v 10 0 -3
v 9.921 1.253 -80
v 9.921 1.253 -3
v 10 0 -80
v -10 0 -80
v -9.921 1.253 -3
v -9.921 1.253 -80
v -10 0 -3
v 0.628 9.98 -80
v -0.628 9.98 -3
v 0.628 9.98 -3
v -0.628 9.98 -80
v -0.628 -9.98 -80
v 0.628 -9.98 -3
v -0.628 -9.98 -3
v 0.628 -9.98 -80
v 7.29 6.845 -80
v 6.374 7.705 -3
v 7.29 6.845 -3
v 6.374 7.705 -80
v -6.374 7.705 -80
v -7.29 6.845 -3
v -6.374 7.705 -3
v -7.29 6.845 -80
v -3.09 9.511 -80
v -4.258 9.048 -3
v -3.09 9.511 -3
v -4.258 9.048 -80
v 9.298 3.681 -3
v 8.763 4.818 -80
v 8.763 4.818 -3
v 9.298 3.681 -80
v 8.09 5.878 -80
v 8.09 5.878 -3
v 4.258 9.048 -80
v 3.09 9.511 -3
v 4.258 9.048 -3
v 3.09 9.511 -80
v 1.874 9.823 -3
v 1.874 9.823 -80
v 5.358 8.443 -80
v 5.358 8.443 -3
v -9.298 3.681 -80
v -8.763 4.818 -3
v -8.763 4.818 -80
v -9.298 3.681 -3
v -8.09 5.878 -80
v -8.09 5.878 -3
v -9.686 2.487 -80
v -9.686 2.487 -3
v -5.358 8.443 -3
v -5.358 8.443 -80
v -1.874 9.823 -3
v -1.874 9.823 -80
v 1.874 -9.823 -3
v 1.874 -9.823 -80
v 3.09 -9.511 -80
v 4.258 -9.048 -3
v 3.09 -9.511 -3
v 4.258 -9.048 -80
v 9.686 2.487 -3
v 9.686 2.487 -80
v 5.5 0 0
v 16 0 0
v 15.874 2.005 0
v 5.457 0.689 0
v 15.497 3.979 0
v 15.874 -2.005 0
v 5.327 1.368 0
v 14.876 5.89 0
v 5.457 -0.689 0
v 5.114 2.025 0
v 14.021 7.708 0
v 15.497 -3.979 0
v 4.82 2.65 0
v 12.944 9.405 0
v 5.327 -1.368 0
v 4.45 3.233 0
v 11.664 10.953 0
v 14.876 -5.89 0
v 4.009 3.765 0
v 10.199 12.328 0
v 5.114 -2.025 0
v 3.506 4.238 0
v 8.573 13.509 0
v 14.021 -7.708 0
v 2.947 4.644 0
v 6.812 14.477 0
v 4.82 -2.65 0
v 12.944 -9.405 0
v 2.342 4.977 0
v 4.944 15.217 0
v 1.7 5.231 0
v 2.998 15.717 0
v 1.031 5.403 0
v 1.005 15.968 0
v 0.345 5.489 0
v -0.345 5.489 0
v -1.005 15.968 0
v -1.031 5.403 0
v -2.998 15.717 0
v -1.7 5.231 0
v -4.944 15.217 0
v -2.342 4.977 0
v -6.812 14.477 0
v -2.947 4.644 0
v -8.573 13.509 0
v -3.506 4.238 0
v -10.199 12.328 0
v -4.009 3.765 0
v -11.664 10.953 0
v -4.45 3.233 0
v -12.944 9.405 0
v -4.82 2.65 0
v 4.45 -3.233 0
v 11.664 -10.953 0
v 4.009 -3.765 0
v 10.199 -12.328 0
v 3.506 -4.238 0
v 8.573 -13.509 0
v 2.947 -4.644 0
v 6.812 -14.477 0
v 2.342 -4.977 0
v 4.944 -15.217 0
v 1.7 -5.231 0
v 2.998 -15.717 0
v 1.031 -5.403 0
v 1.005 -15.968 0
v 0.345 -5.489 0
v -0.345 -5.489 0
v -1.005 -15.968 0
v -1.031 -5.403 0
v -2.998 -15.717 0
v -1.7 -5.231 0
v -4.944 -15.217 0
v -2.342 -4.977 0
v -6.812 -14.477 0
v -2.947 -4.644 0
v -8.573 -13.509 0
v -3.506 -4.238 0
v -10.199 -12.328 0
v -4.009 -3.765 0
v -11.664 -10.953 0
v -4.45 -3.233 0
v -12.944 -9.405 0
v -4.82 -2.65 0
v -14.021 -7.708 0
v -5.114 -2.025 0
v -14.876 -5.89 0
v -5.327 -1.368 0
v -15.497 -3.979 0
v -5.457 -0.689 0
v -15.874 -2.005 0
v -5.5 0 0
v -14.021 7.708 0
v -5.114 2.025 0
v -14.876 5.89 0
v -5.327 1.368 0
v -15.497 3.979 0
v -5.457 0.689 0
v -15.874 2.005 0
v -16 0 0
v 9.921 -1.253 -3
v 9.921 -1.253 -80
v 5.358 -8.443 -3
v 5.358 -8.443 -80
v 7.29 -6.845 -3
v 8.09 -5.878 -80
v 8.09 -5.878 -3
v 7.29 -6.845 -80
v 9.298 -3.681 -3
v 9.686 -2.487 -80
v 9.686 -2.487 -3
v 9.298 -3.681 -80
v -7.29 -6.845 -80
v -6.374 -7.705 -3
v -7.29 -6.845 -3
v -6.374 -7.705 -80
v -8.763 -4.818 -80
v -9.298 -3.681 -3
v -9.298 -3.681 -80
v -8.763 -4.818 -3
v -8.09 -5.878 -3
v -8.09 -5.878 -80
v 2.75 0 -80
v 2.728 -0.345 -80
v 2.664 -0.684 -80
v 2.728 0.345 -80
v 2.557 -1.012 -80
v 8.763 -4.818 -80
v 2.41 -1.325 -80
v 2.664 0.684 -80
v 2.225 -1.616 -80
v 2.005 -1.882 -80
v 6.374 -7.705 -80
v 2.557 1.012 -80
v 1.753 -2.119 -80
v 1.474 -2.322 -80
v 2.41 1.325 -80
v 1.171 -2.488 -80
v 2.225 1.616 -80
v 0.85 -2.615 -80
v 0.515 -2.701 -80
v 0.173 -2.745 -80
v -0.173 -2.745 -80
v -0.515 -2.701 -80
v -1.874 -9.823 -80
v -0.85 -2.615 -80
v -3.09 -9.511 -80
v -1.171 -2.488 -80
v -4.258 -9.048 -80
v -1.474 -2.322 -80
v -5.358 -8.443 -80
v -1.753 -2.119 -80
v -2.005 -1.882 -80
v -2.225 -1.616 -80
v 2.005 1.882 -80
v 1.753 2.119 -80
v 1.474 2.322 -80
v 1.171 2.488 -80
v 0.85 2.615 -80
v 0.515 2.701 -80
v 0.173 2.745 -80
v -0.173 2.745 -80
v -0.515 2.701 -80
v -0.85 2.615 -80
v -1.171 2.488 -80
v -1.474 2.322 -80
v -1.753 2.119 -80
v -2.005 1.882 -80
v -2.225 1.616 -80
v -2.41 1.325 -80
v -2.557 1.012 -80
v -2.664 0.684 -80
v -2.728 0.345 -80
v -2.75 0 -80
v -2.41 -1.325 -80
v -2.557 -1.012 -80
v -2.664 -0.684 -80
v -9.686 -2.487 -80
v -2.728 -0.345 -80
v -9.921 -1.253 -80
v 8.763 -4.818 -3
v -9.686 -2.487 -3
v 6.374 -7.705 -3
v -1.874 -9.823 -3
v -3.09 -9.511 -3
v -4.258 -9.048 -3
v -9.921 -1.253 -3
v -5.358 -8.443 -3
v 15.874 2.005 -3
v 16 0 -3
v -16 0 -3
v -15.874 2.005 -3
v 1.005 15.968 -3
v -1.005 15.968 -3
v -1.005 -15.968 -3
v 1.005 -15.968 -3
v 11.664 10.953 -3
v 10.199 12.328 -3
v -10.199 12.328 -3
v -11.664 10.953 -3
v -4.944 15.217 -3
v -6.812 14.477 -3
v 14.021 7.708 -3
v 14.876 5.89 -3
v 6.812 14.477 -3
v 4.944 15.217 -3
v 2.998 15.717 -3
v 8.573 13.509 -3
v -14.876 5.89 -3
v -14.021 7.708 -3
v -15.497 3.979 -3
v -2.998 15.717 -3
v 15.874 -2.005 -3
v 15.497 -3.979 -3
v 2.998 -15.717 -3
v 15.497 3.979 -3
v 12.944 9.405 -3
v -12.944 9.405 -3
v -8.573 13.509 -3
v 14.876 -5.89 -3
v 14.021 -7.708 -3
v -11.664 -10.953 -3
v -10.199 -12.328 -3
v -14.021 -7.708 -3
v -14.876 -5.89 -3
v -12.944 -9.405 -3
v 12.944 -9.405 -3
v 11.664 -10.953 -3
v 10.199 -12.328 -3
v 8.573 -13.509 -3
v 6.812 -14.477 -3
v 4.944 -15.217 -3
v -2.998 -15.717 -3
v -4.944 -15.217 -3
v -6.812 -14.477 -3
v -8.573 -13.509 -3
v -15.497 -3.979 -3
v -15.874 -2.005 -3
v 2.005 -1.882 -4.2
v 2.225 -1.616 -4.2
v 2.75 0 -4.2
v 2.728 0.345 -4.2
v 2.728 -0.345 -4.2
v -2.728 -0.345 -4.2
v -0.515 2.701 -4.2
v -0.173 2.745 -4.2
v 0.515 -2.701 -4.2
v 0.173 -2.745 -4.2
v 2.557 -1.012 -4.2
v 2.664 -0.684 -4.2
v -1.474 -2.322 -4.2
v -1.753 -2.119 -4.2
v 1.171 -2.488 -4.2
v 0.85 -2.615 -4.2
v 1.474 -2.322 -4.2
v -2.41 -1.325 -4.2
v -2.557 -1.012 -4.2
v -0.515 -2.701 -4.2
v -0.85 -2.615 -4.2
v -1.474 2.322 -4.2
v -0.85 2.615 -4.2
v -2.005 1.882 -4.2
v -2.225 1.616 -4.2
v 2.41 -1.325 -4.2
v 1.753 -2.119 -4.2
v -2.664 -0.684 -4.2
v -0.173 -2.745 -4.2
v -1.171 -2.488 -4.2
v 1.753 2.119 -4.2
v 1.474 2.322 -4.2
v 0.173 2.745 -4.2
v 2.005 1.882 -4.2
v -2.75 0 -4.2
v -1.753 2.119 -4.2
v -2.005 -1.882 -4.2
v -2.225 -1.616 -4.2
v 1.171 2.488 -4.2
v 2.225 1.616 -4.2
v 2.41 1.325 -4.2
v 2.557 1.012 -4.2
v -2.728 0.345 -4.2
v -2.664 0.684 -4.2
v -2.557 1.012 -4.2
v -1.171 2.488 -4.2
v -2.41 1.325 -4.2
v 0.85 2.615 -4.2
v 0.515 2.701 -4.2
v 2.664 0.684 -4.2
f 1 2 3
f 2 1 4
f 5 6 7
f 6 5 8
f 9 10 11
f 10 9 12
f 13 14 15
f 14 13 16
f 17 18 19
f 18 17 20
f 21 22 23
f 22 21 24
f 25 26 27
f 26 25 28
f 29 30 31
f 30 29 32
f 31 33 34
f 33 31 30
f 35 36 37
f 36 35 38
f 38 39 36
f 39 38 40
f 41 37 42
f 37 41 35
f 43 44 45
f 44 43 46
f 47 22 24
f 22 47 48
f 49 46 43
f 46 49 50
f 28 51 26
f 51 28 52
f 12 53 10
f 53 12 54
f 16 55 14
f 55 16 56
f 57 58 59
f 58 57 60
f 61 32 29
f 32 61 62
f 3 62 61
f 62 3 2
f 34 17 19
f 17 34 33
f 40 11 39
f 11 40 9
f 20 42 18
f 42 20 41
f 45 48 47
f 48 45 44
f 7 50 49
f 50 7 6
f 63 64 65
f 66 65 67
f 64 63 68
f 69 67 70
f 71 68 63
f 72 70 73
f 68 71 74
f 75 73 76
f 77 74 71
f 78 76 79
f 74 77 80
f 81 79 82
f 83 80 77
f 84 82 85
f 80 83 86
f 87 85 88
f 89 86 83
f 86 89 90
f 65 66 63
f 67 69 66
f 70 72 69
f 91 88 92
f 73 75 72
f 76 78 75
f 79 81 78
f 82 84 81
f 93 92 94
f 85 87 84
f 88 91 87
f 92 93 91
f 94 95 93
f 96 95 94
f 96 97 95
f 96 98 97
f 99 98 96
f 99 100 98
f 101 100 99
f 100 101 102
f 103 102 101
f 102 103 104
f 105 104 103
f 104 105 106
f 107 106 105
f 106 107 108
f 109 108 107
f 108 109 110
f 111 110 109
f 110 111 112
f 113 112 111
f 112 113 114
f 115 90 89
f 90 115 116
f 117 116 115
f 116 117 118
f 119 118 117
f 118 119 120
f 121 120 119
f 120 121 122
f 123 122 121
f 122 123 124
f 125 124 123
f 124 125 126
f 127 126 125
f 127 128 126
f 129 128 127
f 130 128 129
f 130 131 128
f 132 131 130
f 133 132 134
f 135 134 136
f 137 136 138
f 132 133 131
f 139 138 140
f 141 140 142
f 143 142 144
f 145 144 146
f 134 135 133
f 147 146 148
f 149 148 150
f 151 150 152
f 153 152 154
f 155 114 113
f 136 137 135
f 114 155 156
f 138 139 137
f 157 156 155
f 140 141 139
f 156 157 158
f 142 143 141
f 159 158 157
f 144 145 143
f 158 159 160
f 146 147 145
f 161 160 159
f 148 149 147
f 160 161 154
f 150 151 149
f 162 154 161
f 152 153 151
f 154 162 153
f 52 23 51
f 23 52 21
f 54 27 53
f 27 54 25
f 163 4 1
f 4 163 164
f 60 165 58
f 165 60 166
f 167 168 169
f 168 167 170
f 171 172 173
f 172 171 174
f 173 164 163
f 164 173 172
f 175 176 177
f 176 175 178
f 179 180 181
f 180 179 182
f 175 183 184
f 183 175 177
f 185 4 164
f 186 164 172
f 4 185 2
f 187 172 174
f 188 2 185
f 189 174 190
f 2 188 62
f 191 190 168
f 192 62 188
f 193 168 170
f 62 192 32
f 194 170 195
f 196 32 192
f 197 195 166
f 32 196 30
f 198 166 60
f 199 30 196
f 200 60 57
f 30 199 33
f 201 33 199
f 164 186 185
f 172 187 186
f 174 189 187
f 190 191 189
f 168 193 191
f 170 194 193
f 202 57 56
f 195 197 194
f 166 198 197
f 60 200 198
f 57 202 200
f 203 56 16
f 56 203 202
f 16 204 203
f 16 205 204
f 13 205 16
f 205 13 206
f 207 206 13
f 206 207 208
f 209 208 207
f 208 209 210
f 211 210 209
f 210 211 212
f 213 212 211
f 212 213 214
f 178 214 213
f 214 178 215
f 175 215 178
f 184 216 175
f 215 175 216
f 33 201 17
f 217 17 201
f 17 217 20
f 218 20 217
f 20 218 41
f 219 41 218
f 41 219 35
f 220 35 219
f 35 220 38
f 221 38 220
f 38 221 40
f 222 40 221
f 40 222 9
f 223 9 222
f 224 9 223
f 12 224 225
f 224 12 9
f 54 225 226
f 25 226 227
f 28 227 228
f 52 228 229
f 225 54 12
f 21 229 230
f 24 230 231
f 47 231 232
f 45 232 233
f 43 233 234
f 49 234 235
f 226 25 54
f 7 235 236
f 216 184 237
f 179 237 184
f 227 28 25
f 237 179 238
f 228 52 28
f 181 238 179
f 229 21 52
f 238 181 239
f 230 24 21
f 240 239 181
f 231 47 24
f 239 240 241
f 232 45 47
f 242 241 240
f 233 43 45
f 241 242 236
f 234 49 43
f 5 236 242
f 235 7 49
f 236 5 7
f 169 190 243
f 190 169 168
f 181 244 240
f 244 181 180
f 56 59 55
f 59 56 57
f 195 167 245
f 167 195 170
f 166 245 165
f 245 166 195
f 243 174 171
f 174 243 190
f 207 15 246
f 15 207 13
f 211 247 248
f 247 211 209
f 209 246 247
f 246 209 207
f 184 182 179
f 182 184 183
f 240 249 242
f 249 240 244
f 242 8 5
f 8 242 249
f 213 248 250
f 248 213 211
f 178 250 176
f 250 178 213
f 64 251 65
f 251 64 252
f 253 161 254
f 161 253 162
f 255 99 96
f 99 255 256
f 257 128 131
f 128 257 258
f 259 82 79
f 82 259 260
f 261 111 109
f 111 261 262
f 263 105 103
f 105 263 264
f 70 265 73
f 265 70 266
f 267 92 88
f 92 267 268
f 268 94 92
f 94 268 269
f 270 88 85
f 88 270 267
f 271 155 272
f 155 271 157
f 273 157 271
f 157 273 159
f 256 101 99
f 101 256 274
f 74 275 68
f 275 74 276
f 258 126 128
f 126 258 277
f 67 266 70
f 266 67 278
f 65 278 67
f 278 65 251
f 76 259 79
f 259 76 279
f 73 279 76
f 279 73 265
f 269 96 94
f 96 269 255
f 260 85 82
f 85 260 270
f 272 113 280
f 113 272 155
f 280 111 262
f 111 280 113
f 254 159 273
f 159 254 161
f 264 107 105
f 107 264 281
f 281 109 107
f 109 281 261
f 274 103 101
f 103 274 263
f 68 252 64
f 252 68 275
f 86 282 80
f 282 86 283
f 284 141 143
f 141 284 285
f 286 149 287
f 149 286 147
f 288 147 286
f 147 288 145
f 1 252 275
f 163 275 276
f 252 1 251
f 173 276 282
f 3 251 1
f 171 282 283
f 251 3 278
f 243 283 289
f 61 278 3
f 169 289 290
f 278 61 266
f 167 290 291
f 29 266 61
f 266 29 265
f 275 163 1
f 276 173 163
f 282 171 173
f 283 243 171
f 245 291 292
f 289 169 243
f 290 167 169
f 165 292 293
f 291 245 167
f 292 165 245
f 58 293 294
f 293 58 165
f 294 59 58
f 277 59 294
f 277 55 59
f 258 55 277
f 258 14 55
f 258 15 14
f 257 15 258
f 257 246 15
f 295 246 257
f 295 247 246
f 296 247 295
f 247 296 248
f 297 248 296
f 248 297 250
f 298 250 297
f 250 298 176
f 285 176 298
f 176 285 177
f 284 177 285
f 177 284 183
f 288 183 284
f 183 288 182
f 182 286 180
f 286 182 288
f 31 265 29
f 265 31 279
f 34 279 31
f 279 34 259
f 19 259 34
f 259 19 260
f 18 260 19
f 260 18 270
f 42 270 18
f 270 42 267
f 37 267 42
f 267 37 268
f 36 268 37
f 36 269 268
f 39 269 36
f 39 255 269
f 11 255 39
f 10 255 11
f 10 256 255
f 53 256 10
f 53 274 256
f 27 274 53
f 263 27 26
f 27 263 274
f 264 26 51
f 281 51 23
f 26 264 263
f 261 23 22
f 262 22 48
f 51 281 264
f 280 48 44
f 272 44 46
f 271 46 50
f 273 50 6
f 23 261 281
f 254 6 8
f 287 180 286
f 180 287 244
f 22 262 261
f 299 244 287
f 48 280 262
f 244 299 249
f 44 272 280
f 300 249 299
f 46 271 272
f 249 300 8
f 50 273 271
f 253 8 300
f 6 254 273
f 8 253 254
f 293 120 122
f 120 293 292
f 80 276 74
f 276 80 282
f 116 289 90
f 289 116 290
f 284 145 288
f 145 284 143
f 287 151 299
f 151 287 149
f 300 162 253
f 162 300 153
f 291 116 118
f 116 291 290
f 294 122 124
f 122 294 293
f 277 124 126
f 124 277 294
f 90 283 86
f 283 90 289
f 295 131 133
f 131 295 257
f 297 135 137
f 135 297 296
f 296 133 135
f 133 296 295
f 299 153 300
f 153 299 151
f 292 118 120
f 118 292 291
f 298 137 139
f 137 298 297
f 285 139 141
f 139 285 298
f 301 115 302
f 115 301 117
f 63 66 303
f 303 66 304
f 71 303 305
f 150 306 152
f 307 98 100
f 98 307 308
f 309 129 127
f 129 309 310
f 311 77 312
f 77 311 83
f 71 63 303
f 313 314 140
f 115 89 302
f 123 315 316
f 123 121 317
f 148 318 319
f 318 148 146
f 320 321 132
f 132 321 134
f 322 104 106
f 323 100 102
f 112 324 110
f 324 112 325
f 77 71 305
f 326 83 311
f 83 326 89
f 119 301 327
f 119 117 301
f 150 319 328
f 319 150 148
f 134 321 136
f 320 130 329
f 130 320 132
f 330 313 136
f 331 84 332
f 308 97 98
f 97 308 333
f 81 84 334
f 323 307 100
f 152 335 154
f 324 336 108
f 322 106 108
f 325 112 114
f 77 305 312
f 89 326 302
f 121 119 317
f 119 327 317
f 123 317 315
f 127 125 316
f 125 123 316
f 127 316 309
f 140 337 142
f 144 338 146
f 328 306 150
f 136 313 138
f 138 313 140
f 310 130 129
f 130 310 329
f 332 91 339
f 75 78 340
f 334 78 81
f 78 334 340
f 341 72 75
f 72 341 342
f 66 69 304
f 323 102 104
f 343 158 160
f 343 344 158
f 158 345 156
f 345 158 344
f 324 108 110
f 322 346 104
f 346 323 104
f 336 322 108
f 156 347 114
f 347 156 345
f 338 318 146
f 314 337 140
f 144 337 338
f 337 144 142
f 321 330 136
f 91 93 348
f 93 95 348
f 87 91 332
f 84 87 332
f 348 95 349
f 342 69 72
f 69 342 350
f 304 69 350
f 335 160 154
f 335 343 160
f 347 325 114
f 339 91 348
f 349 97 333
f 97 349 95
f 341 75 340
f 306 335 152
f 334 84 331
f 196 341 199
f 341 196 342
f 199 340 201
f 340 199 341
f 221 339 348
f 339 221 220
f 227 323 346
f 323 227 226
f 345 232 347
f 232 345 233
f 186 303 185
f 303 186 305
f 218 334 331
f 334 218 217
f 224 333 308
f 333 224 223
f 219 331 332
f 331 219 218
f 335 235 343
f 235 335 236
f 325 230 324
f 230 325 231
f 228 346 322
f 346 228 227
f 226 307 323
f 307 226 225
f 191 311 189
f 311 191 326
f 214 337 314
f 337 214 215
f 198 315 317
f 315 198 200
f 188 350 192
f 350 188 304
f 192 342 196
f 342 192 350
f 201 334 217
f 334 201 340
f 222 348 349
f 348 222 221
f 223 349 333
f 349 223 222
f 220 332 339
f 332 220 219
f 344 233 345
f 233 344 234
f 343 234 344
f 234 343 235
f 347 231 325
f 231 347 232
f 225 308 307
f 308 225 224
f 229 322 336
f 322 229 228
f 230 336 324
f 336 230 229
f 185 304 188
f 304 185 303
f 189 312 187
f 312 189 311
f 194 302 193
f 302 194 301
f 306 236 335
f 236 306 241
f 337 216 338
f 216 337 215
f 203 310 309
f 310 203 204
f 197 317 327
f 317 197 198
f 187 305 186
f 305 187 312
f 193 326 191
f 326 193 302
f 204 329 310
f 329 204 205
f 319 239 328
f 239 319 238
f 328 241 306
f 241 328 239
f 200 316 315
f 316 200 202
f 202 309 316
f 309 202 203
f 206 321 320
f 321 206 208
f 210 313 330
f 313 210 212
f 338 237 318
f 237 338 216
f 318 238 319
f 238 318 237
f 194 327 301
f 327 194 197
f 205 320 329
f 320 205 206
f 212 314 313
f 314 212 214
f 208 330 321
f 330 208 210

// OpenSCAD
$fn = 50;


difference() {
	union() {
		translate(v = [0, 0, -80.0000000000]) {
			cylinder(h = 80, r = 10.0000000000);
		}
		translate(v = [0, 0, -3.0000000000]) {
			cylinder(h = 3, r = 16.0000000000);
		}
	}
	union() {
		translate(v = [0, 0, 0]) {
			rotate(a = [0, 0, 0]) {
				difference() {
					union() {
						#translate(v = [0, 0, -80.0000000000]) {
							cylinder(h = 80, r = 2.2500000000);
						}
						#translate(v = [0, 0, -4.2000000000]) {
							cylinder(h = 4.2000000000, r1 = 2.7500000000, r2 = 5.5000000000);
						}
						#translate(v = [0, 0, -80.0000000000]) {
							cylinder(h = 80, r = 2.7500000000);
						}
						#translate(v = [0, 0, -80.0000000000]) {
							cylinder(h = 80, r = 2.2500000000);
						}
					}
					union();
				}
			}
		}
	}
}
